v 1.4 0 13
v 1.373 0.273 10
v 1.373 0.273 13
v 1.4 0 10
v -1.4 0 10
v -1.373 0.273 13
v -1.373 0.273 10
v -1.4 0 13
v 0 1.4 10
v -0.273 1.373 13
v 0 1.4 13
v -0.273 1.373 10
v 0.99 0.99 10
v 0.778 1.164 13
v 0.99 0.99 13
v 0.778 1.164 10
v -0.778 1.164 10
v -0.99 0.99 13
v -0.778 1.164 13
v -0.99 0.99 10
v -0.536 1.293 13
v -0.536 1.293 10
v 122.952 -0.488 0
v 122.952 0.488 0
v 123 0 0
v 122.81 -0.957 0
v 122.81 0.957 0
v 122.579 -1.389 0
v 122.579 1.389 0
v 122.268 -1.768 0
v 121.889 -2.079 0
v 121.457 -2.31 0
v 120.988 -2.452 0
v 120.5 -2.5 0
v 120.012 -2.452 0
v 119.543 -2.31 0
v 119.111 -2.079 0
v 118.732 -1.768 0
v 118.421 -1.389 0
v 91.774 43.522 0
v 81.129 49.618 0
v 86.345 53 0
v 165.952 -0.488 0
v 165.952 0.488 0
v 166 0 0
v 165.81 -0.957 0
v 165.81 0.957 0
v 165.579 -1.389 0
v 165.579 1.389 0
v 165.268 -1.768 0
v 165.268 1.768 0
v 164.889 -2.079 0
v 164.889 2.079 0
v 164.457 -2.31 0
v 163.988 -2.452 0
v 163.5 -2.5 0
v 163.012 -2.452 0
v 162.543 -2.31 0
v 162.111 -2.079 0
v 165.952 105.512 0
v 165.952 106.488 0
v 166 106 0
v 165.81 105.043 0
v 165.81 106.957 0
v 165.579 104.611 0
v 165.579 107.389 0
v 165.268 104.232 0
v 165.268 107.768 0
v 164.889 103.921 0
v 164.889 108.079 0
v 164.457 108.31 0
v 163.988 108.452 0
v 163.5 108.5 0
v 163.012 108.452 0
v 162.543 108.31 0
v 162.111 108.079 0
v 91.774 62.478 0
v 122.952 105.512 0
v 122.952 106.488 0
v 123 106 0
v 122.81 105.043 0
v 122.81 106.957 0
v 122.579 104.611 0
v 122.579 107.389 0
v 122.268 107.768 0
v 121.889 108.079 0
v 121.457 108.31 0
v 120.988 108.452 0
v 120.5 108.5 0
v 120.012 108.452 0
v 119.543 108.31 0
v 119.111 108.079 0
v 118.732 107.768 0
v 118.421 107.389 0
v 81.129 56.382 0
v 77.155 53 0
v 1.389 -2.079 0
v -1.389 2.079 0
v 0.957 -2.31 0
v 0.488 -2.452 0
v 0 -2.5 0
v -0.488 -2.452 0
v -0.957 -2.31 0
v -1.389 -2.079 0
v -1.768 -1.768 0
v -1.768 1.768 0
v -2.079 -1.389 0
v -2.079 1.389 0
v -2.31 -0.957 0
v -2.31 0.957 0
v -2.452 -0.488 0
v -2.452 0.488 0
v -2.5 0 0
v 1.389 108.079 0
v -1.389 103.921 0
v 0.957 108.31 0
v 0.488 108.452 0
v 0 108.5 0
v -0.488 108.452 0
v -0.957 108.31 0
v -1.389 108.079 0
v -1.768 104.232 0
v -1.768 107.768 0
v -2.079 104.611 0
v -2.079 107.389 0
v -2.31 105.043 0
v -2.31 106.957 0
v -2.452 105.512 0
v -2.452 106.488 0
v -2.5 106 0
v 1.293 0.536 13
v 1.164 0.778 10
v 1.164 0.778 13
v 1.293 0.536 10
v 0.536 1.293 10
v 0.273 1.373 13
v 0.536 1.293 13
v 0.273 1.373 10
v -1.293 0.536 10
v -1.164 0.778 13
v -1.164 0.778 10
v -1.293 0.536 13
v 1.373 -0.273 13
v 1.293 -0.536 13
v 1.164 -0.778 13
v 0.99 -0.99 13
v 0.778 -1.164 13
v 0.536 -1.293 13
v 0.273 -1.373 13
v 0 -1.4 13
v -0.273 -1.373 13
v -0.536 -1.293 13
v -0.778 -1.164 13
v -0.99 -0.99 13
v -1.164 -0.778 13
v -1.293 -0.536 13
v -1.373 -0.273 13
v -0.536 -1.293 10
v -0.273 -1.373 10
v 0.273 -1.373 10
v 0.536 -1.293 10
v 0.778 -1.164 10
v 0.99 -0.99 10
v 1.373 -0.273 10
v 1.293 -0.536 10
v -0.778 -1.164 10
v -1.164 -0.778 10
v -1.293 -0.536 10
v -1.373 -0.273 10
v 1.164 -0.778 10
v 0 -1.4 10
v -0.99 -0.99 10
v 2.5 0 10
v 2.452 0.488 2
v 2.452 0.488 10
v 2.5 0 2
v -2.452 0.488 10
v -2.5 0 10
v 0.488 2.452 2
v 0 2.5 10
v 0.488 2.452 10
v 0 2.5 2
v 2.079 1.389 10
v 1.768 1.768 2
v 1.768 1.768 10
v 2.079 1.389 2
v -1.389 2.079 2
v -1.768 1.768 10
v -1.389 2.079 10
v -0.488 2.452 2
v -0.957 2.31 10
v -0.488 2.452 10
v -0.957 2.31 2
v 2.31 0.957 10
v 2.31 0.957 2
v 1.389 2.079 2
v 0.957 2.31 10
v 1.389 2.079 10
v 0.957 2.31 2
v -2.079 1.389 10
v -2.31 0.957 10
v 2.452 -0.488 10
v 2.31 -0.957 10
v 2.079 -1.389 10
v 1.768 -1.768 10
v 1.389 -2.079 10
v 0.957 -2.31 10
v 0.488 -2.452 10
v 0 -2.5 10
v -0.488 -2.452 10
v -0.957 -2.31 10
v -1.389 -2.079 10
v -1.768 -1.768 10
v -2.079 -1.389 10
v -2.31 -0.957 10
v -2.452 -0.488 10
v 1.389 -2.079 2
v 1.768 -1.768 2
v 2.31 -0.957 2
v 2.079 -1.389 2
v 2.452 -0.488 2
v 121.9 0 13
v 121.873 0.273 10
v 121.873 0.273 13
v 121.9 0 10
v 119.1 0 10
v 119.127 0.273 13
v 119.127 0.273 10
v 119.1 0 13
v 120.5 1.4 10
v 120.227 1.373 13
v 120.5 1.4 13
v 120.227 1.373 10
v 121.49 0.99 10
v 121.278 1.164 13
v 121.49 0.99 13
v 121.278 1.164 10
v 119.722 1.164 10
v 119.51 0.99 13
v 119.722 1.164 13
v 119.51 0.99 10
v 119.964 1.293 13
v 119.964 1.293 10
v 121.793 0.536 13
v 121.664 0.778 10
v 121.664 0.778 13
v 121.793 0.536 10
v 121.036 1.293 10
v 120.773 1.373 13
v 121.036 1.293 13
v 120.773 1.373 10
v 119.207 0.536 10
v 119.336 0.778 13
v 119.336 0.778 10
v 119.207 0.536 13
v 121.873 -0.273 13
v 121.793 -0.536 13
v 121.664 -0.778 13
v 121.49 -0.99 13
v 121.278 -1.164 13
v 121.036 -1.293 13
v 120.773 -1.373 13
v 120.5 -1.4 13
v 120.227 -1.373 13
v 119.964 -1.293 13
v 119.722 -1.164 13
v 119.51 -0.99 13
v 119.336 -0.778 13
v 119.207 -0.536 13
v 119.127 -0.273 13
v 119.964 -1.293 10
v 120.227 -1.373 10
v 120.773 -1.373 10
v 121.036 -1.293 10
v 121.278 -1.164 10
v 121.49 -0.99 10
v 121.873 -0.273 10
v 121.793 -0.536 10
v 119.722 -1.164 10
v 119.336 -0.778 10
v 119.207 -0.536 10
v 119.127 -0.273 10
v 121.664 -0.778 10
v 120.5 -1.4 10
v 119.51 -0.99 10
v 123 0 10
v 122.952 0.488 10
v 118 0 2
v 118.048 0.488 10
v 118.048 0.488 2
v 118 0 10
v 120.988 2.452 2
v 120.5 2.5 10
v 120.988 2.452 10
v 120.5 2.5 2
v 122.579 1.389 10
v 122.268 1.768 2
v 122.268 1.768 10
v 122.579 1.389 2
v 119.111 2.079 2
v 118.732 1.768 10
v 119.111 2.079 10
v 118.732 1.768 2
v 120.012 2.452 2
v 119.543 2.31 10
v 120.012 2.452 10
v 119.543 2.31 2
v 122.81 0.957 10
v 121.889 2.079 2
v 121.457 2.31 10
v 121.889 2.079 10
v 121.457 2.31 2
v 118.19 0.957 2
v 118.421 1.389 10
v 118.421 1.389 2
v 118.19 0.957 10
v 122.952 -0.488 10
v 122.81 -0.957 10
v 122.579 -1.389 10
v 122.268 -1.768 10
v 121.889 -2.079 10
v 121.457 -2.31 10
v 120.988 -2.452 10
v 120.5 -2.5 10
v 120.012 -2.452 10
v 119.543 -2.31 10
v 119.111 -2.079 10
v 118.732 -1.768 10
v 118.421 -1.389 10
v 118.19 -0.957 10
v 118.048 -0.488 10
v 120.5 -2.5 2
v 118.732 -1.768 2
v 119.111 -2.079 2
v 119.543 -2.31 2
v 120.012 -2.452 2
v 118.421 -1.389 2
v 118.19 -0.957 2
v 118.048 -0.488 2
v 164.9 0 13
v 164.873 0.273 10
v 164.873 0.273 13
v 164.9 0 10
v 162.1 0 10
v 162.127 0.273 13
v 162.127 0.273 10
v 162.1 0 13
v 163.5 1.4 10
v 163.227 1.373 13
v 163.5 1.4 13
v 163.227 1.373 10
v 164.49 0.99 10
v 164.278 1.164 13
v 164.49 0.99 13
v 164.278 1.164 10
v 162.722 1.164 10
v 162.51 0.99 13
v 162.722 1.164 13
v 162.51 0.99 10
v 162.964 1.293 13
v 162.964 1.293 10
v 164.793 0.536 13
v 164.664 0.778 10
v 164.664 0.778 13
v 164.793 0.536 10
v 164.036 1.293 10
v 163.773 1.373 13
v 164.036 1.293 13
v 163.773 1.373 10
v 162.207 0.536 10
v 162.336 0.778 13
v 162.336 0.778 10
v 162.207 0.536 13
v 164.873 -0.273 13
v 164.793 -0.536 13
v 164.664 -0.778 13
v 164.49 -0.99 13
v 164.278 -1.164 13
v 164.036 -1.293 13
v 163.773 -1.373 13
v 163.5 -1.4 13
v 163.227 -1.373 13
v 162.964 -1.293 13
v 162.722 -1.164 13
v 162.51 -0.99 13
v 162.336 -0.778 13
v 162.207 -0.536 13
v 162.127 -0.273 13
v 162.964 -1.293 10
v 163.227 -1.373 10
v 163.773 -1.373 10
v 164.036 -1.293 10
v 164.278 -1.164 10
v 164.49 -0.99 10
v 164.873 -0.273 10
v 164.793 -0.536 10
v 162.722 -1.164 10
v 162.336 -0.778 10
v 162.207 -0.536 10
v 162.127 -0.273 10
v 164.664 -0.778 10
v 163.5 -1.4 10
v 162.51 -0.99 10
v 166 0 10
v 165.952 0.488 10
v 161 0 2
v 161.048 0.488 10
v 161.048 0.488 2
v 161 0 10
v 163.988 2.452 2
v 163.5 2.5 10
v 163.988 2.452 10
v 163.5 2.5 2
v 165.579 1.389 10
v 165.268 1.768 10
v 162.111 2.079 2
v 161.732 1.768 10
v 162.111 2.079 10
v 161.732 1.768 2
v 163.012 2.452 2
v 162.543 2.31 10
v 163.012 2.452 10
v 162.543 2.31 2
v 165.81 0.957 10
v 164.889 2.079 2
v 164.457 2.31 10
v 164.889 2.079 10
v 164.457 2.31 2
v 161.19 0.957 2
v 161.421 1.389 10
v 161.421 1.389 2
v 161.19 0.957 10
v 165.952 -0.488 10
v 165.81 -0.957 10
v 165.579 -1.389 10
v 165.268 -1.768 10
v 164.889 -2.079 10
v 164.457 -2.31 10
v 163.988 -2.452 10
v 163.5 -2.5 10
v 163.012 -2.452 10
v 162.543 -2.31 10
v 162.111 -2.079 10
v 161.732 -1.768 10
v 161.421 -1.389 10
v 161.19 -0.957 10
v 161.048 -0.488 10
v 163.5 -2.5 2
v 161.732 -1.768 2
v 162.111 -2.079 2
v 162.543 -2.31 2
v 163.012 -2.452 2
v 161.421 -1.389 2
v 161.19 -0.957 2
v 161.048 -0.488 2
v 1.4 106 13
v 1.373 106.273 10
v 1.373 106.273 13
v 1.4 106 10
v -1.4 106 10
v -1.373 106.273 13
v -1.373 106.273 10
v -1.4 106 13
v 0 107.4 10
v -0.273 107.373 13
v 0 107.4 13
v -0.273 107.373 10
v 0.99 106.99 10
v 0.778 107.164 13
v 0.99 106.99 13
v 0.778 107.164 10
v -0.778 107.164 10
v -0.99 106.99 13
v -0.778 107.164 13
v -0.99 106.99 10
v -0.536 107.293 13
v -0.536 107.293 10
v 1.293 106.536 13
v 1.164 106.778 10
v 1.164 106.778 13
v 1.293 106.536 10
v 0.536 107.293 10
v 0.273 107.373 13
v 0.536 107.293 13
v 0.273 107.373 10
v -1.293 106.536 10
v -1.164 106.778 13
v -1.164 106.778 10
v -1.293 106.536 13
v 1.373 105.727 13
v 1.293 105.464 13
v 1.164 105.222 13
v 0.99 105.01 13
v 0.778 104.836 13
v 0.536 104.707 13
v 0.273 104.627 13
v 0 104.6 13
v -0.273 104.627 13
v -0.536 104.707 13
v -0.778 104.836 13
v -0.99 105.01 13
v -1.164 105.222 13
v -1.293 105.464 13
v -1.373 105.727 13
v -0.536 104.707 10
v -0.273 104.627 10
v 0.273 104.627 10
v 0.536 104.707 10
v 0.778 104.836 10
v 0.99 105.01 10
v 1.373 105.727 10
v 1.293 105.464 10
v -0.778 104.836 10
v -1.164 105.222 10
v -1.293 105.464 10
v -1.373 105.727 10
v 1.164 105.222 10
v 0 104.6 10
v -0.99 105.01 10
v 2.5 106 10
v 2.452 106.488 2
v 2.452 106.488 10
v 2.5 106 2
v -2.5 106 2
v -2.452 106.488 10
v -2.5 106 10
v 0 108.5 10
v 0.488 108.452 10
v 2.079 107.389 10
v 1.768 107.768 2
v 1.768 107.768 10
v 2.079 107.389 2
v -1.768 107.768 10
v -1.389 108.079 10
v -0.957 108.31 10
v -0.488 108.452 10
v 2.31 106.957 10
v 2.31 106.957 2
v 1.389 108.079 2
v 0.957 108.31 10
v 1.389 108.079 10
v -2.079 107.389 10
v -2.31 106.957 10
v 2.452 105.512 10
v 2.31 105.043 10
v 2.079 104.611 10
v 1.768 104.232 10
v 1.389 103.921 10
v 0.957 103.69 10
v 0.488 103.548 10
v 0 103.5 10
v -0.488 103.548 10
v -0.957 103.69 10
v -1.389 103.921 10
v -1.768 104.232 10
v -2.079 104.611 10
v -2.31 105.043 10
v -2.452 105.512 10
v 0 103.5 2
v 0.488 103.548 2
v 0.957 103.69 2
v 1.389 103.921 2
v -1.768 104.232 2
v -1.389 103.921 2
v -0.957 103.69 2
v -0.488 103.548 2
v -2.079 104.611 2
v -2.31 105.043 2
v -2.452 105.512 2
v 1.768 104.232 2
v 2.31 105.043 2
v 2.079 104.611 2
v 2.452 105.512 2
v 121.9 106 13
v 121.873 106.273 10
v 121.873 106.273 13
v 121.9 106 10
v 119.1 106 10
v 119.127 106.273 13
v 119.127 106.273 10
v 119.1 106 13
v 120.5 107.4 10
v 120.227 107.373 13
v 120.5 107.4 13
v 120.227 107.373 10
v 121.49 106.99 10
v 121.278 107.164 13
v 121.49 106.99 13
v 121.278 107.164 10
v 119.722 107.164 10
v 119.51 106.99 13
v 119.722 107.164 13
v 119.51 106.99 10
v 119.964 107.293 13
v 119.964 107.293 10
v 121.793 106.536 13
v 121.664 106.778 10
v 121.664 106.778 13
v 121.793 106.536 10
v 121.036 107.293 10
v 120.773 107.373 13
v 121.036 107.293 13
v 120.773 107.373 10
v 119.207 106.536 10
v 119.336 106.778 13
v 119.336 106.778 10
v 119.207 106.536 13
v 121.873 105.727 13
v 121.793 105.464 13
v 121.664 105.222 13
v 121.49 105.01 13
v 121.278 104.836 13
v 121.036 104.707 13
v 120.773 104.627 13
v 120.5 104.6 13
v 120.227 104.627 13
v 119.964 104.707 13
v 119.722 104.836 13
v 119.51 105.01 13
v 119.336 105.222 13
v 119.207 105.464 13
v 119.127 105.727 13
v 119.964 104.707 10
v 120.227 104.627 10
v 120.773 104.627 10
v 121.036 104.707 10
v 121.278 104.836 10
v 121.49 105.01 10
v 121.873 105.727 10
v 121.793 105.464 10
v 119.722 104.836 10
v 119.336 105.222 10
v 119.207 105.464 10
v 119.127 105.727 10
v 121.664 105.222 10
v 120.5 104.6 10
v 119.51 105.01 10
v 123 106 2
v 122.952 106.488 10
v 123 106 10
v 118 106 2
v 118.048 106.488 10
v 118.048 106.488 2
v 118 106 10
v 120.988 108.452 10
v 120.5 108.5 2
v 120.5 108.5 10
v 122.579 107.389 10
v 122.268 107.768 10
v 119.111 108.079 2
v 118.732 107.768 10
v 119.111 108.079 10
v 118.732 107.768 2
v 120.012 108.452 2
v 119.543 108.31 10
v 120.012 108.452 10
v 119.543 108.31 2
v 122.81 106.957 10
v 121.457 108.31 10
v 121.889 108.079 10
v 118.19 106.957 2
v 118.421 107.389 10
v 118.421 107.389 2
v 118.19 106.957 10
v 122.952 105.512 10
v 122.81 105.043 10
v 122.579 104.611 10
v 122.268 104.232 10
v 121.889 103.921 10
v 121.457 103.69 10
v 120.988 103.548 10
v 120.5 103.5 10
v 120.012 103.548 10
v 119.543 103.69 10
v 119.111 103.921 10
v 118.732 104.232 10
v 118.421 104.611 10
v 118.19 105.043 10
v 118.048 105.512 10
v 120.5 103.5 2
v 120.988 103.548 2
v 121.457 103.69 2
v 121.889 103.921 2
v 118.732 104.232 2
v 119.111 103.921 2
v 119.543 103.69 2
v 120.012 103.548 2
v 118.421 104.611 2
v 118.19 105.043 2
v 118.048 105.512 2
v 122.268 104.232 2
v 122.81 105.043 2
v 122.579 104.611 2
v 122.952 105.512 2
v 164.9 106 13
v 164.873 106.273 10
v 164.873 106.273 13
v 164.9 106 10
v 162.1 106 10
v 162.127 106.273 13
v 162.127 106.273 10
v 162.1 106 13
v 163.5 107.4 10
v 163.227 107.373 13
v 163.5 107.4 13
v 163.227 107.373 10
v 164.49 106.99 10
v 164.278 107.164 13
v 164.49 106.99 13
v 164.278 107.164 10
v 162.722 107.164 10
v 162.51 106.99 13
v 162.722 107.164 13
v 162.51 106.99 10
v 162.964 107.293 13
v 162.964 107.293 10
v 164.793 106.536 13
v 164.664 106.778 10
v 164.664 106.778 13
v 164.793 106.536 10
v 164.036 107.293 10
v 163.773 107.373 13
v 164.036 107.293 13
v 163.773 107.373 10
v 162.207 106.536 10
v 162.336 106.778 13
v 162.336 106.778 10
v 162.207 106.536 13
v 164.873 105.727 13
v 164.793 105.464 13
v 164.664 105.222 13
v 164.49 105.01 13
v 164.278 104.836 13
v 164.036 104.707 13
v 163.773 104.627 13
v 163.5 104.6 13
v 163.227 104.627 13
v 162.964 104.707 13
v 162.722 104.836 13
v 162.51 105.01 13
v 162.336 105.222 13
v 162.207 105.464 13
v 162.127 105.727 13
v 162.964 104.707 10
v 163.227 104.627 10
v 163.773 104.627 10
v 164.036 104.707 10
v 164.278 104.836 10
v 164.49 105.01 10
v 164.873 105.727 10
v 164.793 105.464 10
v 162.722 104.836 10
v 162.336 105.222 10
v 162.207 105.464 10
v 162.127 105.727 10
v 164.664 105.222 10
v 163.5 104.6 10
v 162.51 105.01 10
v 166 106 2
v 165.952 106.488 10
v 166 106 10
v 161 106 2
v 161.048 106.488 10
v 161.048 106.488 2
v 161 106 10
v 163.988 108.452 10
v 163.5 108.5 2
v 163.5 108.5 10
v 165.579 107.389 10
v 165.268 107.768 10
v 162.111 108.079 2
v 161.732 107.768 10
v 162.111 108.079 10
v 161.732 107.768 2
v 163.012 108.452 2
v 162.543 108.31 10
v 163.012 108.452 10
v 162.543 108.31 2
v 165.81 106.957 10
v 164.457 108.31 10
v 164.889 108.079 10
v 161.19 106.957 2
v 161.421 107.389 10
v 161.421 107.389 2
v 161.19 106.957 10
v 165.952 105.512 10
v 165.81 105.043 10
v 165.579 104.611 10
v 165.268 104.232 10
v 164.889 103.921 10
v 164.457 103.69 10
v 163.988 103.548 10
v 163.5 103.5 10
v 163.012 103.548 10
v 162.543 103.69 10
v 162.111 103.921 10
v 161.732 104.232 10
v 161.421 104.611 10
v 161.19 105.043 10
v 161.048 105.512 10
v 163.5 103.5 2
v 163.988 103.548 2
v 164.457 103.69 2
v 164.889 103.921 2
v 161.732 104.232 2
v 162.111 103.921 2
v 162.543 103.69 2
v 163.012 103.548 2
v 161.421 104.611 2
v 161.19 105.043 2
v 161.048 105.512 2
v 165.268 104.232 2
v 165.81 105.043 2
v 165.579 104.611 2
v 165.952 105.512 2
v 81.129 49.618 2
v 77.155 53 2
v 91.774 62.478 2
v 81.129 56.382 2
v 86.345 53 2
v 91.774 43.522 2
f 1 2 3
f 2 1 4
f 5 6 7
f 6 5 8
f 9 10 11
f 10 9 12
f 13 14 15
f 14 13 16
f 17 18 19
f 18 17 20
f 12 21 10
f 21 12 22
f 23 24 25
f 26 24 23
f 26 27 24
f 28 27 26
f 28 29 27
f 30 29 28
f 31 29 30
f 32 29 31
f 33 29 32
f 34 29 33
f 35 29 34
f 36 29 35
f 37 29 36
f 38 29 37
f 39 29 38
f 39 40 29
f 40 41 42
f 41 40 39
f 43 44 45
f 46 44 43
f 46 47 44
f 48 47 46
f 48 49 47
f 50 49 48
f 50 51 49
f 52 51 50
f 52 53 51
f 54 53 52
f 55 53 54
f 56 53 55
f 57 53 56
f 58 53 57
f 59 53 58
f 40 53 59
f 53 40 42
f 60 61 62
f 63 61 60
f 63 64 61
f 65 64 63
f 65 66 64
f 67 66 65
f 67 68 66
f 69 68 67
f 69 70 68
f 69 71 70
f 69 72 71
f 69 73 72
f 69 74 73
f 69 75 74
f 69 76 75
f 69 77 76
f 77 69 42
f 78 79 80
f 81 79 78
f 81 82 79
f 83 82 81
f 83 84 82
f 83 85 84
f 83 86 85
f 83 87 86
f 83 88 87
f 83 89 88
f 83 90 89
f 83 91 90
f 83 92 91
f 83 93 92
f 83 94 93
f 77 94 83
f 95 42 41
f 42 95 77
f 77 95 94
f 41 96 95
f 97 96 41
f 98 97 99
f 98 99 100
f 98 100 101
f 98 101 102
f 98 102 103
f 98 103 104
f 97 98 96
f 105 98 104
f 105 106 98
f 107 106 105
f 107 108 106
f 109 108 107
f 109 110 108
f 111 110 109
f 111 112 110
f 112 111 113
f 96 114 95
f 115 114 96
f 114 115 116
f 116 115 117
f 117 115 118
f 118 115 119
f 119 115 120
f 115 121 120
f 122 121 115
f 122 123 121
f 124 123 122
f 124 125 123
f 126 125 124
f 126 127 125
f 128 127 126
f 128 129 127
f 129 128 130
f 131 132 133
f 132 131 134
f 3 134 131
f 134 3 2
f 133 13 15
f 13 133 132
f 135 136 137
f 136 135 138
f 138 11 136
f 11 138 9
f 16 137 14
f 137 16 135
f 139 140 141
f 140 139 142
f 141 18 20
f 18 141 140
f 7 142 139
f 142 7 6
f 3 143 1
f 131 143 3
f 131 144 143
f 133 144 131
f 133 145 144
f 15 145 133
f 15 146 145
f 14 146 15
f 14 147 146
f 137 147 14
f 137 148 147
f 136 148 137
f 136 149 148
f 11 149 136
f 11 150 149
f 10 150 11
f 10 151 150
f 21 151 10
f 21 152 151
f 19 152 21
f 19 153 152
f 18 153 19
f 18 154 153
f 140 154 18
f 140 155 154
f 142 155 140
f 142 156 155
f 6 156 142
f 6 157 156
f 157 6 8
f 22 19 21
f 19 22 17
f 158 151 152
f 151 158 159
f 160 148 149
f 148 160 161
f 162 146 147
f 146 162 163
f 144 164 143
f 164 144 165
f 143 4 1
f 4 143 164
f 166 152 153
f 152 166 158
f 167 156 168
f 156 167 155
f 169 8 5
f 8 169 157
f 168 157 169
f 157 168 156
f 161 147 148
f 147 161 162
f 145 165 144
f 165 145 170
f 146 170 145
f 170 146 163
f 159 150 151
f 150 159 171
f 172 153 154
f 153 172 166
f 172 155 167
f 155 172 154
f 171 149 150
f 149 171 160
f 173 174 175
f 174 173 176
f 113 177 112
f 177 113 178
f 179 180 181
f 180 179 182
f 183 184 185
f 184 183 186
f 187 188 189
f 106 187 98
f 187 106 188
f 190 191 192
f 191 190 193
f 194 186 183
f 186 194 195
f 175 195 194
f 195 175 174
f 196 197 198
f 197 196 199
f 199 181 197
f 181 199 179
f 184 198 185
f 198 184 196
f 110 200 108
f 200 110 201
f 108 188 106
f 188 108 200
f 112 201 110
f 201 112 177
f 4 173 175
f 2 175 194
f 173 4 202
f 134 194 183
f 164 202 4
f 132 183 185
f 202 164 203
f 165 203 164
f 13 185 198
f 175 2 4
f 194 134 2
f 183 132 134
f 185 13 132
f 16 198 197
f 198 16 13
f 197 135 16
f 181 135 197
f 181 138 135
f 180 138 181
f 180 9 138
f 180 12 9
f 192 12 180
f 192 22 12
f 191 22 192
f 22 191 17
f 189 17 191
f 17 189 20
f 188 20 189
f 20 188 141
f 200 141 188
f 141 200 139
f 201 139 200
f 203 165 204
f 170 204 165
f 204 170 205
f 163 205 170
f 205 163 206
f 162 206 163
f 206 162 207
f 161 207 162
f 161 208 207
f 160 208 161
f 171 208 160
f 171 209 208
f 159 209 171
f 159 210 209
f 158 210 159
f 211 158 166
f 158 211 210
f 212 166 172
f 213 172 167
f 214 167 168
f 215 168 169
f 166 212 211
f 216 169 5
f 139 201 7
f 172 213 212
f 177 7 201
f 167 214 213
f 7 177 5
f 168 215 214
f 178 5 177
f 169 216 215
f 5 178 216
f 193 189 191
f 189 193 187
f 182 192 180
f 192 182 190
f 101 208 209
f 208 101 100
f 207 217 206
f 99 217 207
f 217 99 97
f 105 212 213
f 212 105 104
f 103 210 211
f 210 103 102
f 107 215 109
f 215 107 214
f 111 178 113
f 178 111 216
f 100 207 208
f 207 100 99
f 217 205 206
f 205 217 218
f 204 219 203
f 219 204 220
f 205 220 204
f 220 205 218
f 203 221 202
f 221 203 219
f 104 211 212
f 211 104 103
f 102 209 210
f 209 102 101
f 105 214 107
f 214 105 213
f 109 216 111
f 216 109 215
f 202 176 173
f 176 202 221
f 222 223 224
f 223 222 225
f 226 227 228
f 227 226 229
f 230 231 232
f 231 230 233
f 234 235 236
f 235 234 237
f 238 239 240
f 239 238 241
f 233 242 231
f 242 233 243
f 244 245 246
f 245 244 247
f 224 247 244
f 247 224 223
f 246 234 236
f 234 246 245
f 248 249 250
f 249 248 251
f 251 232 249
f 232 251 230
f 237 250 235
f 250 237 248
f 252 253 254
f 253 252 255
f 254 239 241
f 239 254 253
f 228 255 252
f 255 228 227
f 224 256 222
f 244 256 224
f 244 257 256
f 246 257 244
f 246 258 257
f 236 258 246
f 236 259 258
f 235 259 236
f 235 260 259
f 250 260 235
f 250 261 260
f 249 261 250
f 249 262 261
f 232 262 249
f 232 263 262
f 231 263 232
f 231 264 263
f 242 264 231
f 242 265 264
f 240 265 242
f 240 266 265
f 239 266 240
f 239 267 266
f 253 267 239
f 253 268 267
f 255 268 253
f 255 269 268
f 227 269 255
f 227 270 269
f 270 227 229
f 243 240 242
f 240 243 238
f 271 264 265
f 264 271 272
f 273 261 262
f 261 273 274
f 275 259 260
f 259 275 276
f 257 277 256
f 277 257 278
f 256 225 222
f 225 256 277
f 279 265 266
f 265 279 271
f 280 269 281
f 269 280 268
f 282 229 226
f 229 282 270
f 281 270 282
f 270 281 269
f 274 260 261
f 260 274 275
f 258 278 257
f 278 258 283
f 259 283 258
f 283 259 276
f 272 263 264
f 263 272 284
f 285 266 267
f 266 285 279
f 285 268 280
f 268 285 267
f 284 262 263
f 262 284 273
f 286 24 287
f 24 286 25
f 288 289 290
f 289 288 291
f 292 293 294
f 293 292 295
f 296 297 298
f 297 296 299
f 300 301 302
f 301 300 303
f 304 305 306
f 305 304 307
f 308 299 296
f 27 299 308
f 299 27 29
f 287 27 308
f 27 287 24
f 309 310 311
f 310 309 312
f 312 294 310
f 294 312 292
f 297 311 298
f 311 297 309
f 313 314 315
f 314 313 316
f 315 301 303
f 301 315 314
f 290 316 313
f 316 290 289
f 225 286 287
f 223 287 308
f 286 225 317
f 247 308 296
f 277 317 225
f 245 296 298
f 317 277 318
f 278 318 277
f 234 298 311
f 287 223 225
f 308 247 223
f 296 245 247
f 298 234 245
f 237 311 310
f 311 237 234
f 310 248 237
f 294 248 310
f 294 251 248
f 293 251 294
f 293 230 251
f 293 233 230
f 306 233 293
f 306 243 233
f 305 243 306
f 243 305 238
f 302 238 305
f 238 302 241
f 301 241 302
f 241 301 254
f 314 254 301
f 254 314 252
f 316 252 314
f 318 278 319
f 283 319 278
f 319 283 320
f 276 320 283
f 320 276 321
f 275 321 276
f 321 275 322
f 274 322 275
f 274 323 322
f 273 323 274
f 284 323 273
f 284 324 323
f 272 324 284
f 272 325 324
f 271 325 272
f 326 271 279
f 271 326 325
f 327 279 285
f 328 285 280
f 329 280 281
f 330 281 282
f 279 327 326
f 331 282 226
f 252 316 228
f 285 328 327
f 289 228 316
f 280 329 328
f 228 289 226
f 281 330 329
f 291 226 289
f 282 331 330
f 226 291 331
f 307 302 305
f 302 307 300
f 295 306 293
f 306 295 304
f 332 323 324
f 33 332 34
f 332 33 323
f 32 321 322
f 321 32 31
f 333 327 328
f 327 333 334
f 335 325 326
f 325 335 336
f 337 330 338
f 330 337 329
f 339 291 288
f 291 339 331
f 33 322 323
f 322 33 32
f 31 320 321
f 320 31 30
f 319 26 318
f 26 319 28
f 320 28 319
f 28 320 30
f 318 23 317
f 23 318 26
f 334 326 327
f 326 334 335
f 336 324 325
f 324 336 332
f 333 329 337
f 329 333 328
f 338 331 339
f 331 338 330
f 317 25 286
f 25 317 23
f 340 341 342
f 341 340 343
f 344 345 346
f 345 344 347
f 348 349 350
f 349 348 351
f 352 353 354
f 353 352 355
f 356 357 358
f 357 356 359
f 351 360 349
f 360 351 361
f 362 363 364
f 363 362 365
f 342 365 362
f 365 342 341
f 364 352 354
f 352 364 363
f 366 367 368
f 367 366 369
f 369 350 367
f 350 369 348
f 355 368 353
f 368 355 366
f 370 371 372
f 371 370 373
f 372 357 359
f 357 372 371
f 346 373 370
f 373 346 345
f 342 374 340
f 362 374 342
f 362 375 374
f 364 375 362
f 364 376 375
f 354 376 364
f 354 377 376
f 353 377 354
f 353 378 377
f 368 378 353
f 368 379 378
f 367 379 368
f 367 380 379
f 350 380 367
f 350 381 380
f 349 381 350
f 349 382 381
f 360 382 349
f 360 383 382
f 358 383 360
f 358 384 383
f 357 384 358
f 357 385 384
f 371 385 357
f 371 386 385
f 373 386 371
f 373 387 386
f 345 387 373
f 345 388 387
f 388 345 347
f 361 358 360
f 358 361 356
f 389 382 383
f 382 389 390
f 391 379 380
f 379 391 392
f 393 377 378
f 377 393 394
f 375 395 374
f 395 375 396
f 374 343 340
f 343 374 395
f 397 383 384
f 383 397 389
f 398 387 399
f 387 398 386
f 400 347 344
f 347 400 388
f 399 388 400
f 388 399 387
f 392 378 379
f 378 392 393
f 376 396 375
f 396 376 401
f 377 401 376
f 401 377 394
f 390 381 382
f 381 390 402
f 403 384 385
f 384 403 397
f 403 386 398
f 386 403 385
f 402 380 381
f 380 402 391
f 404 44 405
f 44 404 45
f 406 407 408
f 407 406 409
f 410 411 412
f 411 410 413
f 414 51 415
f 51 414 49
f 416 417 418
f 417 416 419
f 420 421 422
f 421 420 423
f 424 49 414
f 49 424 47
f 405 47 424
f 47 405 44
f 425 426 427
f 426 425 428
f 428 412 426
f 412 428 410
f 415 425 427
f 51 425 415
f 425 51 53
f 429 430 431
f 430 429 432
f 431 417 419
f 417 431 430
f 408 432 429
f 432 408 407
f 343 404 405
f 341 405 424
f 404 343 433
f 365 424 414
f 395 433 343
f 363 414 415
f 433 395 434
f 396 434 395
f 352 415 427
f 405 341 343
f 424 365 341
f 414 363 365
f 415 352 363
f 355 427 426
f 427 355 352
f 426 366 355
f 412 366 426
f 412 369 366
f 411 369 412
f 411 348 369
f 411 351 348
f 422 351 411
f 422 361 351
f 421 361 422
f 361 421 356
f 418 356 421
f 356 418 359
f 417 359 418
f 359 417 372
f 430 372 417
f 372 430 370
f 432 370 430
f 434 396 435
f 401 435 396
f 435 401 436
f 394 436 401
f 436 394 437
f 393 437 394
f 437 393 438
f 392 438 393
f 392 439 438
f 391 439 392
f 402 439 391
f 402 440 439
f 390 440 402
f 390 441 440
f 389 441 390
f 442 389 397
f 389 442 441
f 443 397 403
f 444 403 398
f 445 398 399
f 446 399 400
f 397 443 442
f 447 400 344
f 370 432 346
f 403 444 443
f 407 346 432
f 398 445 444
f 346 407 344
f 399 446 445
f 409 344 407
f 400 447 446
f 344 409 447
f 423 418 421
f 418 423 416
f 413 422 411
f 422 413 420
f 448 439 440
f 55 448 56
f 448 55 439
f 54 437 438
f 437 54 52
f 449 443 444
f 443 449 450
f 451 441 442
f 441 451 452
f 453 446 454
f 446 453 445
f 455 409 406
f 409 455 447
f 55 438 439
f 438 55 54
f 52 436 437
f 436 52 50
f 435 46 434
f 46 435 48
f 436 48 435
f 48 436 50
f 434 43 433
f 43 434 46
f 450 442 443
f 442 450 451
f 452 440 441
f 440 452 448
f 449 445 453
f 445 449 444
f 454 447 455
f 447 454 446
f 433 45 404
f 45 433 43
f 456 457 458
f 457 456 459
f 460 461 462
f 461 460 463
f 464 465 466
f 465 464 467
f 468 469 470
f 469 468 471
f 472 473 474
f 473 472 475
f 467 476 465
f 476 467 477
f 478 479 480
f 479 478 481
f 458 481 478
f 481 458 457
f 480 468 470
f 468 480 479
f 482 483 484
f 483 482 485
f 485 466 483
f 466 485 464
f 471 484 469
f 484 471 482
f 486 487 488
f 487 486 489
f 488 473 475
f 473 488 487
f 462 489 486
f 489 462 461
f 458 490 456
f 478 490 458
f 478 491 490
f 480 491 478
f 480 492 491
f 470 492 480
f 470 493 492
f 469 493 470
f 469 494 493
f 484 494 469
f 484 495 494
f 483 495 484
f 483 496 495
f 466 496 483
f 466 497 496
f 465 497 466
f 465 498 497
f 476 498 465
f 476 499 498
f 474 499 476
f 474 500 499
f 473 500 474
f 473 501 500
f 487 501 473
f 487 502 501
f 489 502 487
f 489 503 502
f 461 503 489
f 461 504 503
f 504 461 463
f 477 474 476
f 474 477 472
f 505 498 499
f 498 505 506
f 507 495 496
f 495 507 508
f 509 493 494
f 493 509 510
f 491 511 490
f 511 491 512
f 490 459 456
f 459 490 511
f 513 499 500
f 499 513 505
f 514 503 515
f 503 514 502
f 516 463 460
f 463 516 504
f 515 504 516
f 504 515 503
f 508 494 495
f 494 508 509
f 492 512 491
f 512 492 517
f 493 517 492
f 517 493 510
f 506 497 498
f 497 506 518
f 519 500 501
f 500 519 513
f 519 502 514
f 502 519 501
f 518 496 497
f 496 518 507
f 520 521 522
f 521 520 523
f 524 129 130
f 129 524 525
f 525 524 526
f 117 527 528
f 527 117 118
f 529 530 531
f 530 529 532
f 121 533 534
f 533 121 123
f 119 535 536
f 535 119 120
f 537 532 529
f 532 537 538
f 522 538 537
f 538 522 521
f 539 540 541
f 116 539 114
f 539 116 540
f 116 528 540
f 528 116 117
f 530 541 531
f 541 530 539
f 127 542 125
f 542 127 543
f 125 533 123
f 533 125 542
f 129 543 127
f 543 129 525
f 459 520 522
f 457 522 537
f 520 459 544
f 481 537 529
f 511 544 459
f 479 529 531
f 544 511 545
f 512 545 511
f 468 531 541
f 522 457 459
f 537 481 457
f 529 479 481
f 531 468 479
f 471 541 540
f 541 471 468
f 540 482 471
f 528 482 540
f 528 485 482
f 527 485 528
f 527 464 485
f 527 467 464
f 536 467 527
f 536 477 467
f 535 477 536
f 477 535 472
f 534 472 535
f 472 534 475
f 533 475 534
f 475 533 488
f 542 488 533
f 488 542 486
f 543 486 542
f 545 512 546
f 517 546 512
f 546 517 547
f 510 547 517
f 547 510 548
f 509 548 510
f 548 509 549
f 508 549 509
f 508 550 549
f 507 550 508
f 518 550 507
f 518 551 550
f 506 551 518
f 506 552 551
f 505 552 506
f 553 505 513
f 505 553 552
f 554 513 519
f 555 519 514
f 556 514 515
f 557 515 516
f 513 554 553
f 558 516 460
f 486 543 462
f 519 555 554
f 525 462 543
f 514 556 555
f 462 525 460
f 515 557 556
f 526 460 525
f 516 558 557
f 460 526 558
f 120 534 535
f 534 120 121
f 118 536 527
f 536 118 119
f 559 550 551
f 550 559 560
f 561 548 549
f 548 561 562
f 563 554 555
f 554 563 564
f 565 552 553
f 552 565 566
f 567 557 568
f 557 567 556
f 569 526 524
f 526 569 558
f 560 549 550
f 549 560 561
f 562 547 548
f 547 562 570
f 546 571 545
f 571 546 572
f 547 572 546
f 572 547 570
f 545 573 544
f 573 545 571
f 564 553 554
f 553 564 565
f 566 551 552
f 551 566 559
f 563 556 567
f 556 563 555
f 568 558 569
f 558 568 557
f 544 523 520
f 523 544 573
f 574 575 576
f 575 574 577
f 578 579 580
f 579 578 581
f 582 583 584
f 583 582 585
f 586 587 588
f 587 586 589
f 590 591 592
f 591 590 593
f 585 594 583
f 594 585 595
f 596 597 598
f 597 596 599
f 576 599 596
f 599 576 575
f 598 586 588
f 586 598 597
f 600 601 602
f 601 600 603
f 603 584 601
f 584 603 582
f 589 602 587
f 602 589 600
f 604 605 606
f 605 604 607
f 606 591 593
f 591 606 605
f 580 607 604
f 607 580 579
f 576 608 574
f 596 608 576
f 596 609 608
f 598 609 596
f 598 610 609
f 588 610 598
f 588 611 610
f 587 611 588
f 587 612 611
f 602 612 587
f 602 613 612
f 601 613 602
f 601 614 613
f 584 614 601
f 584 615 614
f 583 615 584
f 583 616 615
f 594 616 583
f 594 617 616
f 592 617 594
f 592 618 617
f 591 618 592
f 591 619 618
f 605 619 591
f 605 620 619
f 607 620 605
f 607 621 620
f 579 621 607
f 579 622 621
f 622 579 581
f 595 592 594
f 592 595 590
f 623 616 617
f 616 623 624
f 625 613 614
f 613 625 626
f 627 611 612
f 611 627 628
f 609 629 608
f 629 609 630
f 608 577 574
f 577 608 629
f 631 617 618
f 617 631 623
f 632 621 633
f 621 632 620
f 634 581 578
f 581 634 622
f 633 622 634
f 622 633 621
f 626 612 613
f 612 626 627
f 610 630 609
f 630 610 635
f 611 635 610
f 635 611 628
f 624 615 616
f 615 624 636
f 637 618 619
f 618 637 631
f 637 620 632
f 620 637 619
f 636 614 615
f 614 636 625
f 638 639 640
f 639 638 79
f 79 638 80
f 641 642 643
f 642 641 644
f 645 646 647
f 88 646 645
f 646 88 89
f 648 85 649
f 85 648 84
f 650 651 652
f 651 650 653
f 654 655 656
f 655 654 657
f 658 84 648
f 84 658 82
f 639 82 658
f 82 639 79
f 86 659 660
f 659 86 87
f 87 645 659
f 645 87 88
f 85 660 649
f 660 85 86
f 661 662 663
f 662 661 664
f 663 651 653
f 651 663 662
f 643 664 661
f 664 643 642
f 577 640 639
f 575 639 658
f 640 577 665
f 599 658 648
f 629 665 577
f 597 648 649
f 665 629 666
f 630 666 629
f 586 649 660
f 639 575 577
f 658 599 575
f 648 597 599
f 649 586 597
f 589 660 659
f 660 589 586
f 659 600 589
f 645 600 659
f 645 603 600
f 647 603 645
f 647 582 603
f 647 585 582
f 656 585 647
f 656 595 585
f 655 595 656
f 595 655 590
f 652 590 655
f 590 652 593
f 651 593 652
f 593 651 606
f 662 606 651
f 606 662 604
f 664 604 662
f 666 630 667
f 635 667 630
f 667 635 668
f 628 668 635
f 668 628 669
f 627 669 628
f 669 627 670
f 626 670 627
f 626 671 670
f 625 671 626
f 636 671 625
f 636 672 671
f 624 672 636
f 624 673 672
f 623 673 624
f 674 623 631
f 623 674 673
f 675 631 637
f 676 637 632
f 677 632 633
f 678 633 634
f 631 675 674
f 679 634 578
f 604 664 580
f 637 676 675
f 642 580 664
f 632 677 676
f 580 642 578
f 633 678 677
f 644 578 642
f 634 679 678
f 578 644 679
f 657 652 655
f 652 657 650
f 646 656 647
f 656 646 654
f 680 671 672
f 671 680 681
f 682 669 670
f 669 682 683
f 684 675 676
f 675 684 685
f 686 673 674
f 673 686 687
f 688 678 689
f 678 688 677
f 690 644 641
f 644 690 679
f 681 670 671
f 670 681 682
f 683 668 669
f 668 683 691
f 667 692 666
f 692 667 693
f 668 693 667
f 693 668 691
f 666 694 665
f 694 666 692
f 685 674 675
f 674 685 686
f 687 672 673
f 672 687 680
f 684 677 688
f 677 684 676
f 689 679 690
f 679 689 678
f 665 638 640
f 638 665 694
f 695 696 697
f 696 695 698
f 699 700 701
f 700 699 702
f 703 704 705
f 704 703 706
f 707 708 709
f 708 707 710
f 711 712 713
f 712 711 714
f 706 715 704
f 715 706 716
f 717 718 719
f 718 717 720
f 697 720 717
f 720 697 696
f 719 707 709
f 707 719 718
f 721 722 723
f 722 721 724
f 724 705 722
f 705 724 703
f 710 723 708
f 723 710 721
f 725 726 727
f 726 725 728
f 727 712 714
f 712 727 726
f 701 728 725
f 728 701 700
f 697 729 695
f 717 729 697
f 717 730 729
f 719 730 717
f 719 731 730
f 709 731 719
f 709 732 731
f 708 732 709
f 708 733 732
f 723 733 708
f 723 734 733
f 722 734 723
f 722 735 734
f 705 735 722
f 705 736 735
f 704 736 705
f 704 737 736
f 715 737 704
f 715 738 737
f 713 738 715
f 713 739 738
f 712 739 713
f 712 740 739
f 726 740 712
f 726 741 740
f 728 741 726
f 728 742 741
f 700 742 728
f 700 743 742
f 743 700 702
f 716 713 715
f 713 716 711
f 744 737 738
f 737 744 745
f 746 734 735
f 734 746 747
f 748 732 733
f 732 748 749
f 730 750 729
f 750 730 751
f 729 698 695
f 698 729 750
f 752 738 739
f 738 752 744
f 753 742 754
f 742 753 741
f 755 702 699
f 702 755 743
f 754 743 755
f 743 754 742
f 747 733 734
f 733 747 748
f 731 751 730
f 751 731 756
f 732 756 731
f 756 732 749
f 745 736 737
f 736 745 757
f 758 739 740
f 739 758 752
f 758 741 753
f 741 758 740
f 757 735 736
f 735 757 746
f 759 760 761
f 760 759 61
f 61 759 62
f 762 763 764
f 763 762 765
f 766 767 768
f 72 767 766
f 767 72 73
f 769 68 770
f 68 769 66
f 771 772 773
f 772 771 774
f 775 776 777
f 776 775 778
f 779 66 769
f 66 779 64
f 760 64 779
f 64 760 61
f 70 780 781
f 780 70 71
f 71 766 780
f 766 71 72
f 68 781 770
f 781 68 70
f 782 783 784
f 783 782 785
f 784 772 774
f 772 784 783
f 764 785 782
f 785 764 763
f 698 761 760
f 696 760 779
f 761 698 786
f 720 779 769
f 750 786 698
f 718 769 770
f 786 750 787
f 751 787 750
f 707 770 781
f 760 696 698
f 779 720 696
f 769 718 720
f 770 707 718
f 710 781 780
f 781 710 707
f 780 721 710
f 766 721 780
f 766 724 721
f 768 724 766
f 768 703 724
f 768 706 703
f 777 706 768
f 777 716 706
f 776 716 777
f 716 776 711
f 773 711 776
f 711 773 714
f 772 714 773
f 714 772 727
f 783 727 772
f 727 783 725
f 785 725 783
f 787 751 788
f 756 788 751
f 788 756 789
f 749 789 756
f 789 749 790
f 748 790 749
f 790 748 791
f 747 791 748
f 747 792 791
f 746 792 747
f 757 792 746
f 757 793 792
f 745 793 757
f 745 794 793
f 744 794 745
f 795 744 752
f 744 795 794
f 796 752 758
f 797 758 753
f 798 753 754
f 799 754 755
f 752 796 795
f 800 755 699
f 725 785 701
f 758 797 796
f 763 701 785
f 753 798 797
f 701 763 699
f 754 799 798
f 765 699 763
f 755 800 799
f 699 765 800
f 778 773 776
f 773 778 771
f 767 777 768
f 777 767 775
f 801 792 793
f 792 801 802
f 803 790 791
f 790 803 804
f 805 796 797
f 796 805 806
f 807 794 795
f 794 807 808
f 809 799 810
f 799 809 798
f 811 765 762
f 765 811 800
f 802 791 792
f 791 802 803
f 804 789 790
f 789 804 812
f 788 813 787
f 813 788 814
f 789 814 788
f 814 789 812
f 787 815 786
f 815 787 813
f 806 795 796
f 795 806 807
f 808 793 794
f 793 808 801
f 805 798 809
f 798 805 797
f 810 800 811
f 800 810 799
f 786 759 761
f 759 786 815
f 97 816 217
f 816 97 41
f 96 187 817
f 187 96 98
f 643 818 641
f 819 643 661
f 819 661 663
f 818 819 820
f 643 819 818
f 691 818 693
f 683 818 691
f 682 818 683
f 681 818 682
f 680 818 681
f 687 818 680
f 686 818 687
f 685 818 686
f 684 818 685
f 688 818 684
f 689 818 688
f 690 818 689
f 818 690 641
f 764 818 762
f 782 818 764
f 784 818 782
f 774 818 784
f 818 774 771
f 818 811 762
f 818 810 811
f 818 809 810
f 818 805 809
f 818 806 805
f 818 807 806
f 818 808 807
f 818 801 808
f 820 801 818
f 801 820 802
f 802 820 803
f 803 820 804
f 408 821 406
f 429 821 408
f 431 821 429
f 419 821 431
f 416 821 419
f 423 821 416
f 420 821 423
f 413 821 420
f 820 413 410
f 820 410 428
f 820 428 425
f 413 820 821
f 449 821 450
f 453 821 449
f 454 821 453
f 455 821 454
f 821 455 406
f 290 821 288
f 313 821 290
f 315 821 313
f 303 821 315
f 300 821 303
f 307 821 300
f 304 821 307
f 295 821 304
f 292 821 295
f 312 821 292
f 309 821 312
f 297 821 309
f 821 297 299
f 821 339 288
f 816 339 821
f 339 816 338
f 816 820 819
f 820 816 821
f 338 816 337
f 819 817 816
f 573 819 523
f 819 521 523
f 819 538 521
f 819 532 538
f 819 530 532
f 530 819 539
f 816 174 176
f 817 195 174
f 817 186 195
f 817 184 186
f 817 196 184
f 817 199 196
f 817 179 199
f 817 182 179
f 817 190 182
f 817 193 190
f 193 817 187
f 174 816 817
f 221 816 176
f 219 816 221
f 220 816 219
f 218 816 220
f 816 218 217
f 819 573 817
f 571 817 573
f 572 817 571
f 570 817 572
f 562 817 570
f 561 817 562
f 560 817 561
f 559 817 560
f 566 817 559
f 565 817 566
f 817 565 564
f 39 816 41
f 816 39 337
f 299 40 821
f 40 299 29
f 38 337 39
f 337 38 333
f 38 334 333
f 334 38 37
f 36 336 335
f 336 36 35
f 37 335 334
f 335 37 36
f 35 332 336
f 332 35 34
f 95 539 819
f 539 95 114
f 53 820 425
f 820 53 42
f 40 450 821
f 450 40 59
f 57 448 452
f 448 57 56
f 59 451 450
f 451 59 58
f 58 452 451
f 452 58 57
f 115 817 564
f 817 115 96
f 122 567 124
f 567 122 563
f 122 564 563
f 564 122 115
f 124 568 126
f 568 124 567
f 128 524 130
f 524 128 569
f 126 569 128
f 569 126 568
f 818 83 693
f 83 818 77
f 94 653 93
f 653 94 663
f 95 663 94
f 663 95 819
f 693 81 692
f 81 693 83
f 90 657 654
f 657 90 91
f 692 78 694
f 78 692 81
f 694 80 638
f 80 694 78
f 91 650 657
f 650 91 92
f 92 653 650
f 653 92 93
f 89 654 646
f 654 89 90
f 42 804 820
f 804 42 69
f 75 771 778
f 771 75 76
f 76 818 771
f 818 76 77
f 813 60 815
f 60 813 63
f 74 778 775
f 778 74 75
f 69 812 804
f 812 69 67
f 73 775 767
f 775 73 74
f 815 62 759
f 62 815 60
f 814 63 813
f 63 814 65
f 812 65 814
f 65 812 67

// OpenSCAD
$fn = 32;
$pos = [
    [0,0],
    [120.5,0],
    [163.5,0],
    [0,106],
    [120.5,106],
    [163.5,106]
];
$mid = $pos[5]/2;

for($p = $pos) {
    t($p) standoff();
    hull() {
        t($p) cylinder(r=5/2,h=2);
        t($mid) cylinder(r=5/2,h=2);
    }
}




module standoff() {
    cylinder(r=2.8/2,h=13);
    cylinder(r=5/2,h=10);
    
}



module rcube(dim,r=1) {
    linear_extrude(dim[2]) offset(r) square([dim[0]-2*r,dim[1]-2*r],center=true);
}

module rcubeo(dim,r=1) {
    linear_extrude(dim[2]) offset(r) square([dim[0],dim[1]],center=true);
}

module zcube(dim) {
    translate([0,0,dim[2]/2]) cube(dim,center=true);
}

module t(dim) translate(dim) children();

module z(dim) translate([0,0,dim]) children();

module r(dim) rotate(dim) children();
